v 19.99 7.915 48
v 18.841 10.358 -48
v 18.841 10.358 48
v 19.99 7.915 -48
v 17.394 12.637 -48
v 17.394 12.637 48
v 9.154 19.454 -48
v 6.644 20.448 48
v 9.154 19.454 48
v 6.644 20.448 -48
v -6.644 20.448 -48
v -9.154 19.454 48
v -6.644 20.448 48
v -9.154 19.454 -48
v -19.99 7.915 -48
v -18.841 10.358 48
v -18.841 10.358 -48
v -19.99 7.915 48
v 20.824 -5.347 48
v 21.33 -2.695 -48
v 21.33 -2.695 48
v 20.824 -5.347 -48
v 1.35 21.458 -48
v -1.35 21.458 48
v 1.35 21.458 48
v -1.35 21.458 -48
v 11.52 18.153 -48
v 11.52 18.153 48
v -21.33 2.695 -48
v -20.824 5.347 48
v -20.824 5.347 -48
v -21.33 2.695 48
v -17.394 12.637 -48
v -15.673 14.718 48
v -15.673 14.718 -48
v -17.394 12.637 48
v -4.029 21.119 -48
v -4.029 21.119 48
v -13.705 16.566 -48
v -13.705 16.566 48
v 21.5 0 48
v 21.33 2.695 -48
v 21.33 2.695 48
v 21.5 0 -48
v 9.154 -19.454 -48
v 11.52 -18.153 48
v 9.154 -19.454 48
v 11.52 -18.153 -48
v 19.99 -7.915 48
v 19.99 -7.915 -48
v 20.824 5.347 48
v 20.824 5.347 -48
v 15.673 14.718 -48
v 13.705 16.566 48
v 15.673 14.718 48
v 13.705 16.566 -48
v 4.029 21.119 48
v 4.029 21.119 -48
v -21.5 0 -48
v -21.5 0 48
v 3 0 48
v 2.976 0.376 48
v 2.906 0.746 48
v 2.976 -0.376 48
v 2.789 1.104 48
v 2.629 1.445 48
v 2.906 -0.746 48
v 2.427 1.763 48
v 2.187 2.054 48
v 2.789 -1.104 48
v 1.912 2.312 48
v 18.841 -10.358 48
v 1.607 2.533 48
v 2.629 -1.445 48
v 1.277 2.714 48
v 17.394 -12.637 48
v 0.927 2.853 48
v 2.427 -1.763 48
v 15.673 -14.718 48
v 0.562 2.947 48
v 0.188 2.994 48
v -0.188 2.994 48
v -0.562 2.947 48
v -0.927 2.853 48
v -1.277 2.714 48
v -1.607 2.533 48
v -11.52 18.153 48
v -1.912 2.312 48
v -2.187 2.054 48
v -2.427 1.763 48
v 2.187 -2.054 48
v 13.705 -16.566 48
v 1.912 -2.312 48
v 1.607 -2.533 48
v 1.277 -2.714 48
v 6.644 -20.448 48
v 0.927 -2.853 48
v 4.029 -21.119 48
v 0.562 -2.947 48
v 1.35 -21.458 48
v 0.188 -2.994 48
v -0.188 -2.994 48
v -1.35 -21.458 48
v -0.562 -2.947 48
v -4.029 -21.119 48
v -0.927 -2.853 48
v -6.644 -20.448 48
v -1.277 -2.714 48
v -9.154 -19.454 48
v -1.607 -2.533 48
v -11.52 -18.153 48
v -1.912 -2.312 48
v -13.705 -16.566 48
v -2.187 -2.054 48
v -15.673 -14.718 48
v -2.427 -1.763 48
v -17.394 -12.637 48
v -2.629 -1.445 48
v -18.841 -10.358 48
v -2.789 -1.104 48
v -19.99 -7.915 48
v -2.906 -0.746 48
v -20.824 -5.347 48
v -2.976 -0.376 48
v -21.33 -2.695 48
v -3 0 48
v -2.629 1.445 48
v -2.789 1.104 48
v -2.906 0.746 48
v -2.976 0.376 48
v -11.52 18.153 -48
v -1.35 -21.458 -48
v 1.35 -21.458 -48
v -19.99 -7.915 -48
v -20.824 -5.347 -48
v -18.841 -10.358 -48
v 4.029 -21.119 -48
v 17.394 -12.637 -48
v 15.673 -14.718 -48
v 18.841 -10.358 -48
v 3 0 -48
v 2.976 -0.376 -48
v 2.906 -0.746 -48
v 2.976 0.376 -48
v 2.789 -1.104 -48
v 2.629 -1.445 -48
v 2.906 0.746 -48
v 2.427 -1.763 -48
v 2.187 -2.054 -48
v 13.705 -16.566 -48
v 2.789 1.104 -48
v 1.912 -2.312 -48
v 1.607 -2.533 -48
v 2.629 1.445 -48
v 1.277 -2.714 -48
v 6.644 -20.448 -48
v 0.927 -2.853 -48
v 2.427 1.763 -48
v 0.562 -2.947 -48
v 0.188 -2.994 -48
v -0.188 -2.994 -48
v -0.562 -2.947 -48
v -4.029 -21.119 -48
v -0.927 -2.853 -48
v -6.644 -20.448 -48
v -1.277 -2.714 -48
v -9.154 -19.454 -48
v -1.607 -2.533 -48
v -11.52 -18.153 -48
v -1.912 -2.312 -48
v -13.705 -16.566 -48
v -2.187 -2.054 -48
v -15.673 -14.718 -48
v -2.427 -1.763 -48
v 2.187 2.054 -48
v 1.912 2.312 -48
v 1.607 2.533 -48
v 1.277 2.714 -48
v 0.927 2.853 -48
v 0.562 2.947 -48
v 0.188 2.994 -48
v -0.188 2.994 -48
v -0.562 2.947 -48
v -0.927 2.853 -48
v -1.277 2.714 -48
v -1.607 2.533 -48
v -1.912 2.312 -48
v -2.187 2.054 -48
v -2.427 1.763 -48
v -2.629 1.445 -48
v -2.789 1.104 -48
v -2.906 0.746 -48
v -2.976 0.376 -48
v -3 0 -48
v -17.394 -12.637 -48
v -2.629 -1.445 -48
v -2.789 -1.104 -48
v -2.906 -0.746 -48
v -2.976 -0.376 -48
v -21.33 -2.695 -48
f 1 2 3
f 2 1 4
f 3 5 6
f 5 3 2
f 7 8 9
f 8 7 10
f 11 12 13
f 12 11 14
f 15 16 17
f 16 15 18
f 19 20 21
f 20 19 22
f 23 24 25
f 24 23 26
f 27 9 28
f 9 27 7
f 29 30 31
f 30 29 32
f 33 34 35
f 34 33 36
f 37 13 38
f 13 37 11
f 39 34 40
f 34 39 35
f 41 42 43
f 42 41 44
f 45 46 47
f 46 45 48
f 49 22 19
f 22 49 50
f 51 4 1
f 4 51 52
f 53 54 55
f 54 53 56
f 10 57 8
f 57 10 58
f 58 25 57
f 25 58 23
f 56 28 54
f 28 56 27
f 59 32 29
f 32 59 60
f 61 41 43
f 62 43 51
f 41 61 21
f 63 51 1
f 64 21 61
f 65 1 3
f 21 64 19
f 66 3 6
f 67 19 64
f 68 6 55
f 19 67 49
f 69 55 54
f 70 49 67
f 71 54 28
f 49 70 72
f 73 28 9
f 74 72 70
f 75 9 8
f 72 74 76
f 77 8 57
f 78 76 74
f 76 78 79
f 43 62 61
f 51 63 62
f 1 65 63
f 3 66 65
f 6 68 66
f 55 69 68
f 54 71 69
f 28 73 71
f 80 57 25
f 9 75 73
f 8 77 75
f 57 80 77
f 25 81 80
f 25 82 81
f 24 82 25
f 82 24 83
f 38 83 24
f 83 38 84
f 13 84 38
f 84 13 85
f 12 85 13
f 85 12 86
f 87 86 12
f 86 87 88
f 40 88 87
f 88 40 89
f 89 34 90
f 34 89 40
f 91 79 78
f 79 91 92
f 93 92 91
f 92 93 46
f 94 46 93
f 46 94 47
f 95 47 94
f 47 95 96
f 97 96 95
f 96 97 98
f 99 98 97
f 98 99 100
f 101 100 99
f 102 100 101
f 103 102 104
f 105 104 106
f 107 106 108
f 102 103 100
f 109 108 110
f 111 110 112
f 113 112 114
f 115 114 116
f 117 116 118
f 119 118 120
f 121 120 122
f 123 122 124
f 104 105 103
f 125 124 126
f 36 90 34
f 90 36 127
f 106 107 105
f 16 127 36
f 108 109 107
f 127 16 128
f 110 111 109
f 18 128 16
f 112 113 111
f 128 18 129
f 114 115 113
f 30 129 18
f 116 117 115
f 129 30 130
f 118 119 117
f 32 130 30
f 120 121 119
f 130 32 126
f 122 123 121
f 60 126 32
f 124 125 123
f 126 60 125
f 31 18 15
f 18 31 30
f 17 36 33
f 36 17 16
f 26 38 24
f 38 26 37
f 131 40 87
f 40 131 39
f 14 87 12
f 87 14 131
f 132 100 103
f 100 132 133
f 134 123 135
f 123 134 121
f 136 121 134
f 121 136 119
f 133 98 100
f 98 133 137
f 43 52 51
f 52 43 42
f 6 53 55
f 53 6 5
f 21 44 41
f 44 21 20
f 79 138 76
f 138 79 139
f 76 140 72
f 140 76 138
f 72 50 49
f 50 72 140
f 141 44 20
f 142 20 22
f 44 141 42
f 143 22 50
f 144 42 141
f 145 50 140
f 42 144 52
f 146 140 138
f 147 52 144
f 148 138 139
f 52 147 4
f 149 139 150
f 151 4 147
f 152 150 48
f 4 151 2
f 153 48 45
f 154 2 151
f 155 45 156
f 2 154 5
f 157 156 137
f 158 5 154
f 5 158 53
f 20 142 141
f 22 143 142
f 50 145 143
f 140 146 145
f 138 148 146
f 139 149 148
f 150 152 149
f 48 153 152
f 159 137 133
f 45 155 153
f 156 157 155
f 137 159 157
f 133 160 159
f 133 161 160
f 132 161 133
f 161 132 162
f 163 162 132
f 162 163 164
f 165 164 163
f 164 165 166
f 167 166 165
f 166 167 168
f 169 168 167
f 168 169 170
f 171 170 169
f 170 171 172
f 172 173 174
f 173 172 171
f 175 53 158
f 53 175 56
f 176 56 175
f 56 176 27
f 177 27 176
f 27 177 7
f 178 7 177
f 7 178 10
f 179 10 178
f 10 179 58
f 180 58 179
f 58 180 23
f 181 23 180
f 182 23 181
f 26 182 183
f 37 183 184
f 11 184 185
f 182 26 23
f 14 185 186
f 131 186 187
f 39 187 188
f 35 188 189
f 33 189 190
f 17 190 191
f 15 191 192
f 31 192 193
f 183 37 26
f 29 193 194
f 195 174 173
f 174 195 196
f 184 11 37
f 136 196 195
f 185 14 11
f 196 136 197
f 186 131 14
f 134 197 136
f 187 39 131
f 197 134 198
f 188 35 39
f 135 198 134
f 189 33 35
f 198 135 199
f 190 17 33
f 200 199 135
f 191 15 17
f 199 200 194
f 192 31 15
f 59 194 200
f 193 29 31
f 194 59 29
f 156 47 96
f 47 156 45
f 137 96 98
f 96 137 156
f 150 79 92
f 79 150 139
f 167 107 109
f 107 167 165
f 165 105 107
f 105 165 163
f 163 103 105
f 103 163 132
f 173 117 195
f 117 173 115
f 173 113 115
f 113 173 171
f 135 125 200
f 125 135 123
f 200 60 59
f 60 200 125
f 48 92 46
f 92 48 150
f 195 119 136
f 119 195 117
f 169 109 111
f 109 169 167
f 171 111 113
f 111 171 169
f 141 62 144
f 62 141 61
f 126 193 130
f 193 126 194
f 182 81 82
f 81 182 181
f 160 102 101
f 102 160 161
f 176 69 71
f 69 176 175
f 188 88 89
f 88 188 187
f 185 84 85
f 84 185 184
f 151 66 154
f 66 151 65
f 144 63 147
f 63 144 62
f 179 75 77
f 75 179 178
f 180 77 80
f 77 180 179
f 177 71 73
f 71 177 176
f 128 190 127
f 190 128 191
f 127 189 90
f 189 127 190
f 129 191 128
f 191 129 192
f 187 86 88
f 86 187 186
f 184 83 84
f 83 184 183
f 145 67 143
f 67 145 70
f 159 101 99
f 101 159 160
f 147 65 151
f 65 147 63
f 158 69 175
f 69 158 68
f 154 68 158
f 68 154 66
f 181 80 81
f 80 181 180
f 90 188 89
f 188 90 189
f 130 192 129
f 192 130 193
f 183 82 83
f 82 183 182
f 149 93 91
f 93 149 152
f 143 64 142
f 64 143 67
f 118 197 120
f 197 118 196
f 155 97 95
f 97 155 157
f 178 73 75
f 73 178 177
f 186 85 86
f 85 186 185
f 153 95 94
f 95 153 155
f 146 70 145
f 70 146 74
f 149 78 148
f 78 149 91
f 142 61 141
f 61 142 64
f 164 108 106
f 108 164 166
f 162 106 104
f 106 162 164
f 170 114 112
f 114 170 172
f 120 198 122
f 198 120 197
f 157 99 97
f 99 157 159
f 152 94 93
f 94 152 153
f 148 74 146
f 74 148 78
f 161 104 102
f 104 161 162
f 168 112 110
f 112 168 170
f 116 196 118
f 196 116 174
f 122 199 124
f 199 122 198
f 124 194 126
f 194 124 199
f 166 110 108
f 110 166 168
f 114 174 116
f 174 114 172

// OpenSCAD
$fn = 50;


difference() {
	union() {
		translate(v = [0, 0, -48.0000000000]) {
			cylinder(h = 96, r = 21.5000000000);
		}
	}
	union() {
		translate(v = [0, 0, -100.0000000000]) {
			cylinder(h = 200, r = 3);
		}
	}
}
